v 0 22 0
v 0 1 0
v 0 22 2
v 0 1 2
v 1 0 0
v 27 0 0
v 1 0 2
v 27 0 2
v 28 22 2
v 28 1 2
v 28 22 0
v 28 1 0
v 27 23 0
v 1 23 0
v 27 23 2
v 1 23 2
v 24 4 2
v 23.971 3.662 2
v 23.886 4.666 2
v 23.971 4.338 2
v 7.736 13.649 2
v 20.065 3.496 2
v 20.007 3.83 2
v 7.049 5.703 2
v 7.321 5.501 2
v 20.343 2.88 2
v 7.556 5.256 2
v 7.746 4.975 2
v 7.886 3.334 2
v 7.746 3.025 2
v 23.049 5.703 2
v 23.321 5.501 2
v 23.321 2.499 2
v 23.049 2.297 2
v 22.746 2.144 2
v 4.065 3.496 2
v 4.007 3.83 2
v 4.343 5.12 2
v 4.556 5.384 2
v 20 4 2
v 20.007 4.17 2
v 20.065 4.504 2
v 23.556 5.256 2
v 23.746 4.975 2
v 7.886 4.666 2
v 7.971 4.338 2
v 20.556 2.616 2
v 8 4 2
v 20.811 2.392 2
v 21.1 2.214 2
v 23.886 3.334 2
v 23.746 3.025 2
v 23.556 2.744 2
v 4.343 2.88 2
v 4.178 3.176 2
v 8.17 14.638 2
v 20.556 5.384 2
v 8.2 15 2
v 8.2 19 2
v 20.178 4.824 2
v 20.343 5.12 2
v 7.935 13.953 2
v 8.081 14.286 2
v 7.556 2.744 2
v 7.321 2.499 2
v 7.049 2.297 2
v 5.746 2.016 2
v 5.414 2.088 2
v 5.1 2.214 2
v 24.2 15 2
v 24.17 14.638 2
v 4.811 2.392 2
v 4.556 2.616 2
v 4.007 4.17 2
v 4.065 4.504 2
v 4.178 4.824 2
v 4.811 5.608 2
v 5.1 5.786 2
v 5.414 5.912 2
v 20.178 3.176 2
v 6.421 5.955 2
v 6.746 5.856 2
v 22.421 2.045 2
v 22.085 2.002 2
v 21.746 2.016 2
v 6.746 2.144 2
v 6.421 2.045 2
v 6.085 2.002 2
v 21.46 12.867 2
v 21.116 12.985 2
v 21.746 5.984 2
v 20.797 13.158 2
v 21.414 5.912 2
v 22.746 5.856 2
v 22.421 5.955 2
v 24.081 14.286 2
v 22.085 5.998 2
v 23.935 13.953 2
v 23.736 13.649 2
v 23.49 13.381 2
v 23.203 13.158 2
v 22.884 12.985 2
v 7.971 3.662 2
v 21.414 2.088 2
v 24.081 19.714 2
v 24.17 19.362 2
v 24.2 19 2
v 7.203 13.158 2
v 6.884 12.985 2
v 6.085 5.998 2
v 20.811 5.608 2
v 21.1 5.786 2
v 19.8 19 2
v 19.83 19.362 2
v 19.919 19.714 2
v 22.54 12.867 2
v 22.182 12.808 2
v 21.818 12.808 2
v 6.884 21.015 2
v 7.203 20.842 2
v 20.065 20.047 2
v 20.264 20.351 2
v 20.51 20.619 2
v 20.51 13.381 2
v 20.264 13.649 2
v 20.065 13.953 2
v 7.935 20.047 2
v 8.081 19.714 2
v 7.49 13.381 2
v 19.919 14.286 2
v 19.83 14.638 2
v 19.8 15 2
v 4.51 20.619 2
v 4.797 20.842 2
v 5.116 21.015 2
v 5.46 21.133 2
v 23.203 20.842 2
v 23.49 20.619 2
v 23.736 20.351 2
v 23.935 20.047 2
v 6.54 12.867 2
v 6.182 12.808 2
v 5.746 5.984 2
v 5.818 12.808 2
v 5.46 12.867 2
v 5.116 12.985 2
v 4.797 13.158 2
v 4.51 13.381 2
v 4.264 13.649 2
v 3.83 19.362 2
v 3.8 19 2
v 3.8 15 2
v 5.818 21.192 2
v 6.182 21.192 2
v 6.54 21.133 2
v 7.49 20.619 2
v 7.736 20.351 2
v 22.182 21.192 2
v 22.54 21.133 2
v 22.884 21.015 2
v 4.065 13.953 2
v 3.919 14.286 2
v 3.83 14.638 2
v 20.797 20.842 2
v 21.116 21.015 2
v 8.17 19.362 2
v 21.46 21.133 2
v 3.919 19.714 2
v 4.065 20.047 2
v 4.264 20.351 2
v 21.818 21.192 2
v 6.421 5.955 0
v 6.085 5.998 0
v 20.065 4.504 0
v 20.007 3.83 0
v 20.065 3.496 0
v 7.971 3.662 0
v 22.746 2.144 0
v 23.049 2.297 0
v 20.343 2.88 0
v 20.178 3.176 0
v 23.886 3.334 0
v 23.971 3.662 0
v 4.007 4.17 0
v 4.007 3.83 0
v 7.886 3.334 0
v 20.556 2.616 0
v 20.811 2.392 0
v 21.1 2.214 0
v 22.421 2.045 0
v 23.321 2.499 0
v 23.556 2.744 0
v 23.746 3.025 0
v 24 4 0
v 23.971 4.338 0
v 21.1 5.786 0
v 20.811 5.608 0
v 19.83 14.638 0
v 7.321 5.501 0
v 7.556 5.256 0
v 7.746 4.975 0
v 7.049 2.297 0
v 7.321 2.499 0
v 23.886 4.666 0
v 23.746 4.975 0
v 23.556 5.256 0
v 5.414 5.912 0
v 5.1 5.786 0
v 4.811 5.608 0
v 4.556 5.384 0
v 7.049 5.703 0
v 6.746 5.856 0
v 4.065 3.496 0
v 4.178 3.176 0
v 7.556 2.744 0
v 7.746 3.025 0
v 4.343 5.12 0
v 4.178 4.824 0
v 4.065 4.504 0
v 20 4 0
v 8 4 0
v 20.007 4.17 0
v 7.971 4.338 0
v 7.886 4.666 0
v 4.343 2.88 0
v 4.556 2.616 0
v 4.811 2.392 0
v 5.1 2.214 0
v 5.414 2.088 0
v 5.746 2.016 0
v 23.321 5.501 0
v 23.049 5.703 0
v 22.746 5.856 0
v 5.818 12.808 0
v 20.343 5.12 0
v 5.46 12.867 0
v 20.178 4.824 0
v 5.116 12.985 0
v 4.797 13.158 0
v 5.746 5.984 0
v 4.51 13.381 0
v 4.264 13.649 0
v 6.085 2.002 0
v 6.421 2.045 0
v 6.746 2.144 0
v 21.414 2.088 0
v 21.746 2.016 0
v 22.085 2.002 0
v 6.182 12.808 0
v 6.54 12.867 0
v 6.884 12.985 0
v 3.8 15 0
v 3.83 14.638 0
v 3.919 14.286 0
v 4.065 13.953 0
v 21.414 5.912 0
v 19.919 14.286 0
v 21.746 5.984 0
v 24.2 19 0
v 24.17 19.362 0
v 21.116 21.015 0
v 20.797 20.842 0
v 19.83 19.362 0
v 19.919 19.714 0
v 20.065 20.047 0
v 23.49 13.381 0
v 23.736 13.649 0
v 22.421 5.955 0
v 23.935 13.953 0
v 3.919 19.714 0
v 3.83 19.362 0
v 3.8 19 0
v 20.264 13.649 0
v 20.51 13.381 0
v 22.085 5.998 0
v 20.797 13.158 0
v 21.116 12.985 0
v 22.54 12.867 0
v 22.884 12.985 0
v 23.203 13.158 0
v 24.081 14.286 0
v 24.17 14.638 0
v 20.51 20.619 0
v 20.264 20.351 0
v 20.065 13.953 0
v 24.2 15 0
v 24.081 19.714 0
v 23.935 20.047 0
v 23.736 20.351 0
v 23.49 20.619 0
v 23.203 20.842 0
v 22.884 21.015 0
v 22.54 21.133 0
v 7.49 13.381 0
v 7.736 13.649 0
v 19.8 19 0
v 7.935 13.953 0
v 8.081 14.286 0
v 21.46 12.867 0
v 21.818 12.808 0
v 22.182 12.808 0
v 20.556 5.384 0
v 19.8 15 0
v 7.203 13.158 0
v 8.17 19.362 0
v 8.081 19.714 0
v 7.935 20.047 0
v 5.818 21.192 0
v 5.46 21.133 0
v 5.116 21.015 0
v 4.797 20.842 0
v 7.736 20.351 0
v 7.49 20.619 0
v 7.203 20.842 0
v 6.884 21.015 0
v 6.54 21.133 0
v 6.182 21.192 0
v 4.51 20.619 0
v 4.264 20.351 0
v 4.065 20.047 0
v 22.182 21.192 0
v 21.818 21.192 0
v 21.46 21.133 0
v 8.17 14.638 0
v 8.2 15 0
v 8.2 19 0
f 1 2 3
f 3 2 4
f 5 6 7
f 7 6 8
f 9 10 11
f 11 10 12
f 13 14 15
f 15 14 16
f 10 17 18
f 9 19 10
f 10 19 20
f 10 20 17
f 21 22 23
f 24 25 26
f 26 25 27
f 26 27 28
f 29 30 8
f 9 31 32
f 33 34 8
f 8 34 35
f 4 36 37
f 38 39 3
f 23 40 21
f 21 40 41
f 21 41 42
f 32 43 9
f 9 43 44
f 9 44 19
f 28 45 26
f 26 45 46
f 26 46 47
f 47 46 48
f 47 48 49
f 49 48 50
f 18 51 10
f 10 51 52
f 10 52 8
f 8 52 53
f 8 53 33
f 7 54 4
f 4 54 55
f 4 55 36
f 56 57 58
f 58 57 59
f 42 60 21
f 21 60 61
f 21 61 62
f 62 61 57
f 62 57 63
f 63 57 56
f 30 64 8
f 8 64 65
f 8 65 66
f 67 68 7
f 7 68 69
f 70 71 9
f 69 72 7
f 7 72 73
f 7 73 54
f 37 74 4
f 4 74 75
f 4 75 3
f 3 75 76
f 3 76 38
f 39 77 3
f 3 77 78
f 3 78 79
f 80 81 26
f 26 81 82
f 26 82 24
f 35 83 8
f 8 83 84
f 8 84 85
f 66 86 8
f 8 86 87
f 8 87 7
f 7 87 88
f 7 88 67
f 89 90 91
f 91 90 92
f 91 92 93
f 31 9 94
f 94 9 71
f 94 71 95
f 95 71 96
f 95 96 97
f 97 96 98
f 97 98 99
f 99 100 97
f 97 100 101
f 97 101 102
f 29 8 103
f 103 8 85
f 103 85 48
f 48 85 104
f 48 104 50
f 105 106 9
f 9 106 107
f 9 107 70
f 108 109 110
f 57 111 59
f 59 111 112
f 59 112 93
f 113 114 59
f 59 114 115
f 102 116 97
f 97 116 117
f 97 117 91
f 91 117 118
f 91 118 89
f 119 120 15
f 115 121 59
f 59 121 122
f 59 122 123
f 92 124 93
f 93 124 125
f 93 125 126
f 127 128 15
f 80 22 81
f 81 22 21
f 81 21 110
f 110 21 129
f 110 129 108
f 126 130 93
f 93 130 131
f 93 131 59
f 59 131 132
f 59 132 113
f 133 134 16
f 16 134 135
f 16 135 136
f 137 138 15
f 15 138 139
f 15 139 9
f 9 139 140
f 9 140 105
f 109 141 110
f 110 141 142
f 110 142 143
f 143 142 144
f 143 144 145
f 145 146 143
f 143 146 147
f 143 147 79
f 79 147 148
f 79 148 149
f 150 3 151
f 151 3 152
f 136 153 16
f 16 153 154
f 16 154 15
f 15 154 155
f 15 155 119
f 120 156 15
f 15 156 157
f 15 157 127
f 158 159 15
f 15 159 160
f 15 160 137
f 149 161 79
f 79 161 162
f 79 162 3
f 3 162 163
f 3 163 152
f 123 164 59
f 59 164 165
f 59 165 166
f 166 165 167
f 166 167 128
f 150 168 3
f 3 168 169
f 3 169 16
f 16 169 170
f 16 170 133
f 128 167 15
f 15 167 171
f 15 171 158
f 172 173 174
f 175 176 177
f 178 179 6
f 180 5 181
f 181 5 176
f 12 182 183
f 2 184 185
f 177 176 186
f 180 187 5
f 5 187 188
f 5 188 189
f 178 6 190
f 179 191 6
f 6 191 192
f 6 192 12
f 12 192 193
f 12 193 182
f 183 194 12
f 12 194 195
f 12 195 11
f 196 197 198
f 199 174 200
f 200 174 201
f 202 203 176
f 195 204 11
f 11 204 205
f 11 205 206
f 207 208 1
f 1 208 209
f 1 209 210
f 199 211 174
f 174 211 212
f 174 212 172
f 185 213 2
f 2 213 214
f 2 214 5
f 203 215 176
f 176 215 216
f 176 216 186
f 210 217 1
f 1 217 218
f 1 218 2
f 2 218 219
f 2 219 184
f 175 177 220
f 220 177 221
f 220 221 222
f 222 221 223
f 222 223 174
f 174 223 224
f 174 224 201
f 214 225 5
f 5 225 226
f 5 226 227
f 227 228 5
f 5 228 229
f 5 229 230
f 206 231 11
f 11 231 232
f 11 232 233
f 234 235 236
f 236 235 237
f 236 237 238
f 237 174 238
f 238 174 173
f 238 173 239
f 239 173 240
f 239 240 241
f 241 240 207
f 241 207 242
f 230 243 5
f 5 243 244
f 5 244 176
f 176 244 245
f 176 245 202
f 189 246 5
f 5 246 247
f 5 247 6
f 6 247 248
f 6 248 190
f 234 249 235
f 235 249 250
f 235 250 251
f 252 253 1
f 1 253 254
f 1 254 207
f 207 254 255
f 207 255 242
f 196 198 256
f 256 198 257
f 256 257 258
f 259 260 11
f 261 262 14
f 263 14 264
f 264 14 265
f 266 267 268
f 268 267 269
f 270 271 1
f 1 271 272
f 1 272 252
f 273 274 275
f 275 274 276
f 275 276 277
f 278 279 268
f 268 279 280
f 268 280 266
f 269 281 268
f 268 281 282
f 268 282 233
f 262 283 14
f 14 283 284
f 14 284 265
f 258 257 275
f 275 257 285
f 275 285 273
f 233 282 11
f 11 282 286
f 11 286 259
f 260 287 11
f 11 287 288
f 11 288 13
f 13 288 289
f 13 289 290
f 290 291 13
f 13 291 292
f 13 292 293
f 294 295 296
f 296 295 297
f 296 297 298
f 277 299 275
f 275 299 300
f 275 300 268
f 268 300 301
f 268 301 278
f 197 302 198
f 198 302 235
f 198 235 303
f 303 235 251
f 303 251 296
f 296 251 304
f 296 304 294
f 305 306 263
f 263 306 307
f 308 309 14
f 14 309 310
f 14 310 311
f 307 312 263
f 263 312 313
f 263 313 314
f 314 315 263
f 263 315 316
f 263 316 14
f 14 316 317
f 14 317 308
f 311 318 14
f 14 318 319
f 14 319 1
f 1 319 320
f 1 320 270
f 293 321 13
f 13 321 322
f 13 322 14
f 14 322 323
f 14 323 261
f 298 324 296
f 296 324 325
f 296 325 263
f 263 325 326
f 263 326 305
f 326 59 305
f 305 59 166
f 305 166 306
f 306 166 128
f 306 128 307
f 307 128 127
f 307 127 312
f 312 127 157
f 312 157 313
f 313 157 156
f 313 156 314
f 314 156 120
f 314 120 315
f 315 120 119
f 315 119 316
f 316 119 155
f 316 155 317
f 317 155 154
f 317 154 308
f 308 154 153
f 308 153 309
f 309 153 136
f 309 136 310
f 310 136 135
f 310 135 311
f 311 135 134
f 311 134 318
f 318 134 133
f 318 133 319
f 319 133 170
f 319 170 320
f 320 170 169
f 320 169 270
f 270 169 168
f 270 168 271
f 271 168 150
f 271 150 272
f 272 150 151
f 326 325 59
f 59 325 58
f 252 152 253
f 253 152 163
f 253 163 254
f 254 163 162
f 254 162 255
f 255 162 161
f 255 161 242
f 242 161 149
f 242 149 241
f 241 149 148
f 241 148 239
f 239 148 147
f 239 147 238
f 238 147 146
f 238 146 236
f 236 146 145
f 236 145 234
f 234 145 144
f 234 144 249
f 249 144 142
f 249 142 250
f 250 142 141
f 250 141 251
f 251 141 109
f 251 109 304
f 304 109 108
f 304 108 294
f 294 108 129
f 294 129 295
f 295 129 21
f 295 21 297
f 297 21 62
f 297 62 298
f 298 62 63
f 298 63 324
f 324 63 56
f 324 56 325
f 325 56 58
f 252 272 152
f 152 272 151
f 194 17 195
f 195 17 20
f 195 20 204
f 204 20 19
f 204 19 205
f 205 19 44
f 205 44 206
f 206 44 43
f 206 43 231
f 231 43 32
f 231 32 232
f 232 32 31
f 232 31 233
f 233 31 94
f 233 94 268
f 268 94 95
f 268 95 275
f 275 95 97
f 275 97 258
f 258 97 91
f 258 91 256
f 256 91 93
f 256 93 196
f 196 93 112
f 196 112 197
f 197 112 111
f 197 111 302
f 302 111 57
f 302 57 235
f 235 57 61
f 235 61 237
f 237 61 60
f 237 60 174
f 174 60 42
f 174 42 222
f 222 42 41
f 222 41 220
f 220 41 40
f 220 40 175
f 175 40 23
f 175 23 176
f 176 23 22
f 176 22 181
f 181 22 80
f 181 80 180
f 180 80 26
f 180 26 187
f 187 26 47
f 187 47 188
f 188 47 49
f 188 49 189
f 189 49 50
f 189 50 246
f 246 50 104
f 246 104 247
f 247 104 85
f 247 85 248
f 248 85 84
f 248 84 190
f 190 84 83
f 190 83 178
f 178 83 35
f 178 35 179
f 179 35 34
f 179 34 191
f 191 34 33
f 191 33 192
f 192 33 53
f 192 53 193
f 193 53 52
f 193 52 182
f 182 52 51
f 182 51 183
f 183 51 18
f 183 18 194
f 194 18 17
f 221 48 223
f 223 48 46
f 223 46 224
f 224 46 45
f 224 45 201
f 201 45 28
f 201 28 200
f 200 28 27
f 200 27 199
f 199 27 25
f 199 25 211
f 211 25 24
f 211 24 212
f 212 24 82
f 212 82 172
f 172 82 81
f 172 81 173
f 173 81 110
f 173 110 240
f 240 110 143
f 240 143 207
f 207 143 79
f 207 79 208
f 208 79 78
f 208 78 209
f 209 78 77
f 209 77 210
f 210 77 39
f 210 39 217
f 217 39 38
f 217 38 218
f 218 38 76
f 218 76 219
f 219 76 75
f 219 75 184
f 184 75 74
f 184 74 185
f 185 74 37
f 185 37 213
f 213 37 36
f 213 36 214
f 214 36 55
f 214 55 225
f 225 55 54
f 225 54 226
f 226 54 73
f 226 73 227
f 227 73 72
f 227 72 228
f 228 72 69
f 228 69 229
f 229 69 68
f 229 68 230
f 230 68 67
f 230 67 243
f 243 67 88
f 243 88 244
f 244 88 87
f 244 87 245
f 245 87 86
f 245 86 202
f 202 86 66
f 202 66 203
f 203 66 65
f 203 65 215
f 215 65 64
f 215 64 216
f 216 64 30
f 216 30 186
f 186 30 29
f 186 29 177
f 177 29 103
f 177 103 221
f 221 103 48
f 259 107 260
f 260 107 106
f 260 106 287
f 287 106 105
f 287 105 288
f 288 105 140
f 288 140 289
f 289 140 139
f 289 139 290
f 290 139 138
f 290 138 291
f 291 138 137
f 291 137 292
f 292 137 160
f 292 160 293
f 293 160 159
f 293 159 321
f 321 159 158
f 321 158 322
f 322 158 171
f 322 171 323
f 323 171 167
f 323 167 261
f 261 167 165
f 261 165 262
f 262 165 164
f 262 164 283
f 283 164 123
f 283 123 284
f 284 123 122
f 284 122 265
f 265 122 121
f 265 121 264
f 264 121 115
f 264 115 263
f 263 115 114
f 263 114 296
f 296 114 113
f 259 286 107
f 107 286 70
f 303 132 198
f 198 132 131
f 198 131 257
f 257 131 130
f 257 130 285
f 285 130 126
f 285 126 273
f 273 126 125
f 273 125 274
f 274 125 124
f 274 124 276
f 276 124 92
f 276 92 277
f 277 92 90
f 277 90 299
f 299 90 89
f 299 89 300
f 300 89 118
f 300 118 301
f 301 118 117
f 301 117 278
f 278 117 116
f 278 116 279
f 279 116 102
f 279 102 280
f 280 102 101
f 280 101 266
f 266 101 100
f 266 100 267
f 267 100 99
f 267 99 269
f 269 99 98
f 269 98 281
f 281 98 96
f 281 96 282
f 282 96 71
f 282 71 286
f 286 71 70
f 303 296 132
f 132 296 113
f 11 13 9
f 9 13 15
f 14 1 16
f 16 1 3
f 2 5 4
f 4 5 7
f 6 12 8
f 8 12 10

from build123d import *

# Parameters (mm, degrees)
ESQUISSE1_W             = 28
ESQUISSE1_H             = 23
BOSS_EXTRU_1_DEPTH      = 2
ESQUISSE2_R             = 2
ENL_V_MAT_EXTRU_1_DEPTH = 37.290494623
CHANFREIN1_SIZE         = 1


with BuildPart() as part:
    # Esquisse1 → Boss.-Extru.1 (new body)
    with BuildSketch(Plane.XY):
        with Locations((14, 11.5)):
            Rectangle(ESQUISSE1_W, ESQUISSE1_H)
    extrude(amount=BOSS_EXTRU_1_DEPTH)

    # Esquisse2 → Enlèv. mat.-Extru.1 (cut, through all)
    with BuildSketch(Plane.XY.offset(2)):
        with Locations((6, 4)):
            Circle(ESQUISSE2_R)
        with Locations(Location((22, 4, 0), (0, 0, 180))):
            Circle(ESQUISSE2_R)
        with BuildLine():
            Line((8.2, 19), (8.2, 15))
            ThreePointArc((8.2, 15), (6, 12.8), (3.8, 15))
            Line((3.8, 15), (3.8, 19))
            ThreePointArc((3.8, 19), (6, 21.2), (8.2, 19))
        make_face()
        with BuildLine():
            Line((19.8, 19), (19.8, 15))
            ThreePointArc((19.8, 15), (22, 12.8), (24.2, 15))
            Line((24.2, 15), (24.2, 19))
            ThreePointArc((24.2, 19), (22, 21.2), (19.8, 19))
        make_face()
    extrude(amount=-ENL_V_MAT_EXTRU_1_DEPTH, mode=Mode.SUBTRACT)

    # Chanfrein1
    chanfrein1_edges = [part.edges().sort_by_distance(p)[0] for p in [
        (0, 23, 1),
        (28, 23, 1),
        (28, 0, 1),
        (0, 0, 1),
    ]]
    chamfer(chanfrein1_edges, length=CHANFREIN1_SIZE)


solid = part.part
